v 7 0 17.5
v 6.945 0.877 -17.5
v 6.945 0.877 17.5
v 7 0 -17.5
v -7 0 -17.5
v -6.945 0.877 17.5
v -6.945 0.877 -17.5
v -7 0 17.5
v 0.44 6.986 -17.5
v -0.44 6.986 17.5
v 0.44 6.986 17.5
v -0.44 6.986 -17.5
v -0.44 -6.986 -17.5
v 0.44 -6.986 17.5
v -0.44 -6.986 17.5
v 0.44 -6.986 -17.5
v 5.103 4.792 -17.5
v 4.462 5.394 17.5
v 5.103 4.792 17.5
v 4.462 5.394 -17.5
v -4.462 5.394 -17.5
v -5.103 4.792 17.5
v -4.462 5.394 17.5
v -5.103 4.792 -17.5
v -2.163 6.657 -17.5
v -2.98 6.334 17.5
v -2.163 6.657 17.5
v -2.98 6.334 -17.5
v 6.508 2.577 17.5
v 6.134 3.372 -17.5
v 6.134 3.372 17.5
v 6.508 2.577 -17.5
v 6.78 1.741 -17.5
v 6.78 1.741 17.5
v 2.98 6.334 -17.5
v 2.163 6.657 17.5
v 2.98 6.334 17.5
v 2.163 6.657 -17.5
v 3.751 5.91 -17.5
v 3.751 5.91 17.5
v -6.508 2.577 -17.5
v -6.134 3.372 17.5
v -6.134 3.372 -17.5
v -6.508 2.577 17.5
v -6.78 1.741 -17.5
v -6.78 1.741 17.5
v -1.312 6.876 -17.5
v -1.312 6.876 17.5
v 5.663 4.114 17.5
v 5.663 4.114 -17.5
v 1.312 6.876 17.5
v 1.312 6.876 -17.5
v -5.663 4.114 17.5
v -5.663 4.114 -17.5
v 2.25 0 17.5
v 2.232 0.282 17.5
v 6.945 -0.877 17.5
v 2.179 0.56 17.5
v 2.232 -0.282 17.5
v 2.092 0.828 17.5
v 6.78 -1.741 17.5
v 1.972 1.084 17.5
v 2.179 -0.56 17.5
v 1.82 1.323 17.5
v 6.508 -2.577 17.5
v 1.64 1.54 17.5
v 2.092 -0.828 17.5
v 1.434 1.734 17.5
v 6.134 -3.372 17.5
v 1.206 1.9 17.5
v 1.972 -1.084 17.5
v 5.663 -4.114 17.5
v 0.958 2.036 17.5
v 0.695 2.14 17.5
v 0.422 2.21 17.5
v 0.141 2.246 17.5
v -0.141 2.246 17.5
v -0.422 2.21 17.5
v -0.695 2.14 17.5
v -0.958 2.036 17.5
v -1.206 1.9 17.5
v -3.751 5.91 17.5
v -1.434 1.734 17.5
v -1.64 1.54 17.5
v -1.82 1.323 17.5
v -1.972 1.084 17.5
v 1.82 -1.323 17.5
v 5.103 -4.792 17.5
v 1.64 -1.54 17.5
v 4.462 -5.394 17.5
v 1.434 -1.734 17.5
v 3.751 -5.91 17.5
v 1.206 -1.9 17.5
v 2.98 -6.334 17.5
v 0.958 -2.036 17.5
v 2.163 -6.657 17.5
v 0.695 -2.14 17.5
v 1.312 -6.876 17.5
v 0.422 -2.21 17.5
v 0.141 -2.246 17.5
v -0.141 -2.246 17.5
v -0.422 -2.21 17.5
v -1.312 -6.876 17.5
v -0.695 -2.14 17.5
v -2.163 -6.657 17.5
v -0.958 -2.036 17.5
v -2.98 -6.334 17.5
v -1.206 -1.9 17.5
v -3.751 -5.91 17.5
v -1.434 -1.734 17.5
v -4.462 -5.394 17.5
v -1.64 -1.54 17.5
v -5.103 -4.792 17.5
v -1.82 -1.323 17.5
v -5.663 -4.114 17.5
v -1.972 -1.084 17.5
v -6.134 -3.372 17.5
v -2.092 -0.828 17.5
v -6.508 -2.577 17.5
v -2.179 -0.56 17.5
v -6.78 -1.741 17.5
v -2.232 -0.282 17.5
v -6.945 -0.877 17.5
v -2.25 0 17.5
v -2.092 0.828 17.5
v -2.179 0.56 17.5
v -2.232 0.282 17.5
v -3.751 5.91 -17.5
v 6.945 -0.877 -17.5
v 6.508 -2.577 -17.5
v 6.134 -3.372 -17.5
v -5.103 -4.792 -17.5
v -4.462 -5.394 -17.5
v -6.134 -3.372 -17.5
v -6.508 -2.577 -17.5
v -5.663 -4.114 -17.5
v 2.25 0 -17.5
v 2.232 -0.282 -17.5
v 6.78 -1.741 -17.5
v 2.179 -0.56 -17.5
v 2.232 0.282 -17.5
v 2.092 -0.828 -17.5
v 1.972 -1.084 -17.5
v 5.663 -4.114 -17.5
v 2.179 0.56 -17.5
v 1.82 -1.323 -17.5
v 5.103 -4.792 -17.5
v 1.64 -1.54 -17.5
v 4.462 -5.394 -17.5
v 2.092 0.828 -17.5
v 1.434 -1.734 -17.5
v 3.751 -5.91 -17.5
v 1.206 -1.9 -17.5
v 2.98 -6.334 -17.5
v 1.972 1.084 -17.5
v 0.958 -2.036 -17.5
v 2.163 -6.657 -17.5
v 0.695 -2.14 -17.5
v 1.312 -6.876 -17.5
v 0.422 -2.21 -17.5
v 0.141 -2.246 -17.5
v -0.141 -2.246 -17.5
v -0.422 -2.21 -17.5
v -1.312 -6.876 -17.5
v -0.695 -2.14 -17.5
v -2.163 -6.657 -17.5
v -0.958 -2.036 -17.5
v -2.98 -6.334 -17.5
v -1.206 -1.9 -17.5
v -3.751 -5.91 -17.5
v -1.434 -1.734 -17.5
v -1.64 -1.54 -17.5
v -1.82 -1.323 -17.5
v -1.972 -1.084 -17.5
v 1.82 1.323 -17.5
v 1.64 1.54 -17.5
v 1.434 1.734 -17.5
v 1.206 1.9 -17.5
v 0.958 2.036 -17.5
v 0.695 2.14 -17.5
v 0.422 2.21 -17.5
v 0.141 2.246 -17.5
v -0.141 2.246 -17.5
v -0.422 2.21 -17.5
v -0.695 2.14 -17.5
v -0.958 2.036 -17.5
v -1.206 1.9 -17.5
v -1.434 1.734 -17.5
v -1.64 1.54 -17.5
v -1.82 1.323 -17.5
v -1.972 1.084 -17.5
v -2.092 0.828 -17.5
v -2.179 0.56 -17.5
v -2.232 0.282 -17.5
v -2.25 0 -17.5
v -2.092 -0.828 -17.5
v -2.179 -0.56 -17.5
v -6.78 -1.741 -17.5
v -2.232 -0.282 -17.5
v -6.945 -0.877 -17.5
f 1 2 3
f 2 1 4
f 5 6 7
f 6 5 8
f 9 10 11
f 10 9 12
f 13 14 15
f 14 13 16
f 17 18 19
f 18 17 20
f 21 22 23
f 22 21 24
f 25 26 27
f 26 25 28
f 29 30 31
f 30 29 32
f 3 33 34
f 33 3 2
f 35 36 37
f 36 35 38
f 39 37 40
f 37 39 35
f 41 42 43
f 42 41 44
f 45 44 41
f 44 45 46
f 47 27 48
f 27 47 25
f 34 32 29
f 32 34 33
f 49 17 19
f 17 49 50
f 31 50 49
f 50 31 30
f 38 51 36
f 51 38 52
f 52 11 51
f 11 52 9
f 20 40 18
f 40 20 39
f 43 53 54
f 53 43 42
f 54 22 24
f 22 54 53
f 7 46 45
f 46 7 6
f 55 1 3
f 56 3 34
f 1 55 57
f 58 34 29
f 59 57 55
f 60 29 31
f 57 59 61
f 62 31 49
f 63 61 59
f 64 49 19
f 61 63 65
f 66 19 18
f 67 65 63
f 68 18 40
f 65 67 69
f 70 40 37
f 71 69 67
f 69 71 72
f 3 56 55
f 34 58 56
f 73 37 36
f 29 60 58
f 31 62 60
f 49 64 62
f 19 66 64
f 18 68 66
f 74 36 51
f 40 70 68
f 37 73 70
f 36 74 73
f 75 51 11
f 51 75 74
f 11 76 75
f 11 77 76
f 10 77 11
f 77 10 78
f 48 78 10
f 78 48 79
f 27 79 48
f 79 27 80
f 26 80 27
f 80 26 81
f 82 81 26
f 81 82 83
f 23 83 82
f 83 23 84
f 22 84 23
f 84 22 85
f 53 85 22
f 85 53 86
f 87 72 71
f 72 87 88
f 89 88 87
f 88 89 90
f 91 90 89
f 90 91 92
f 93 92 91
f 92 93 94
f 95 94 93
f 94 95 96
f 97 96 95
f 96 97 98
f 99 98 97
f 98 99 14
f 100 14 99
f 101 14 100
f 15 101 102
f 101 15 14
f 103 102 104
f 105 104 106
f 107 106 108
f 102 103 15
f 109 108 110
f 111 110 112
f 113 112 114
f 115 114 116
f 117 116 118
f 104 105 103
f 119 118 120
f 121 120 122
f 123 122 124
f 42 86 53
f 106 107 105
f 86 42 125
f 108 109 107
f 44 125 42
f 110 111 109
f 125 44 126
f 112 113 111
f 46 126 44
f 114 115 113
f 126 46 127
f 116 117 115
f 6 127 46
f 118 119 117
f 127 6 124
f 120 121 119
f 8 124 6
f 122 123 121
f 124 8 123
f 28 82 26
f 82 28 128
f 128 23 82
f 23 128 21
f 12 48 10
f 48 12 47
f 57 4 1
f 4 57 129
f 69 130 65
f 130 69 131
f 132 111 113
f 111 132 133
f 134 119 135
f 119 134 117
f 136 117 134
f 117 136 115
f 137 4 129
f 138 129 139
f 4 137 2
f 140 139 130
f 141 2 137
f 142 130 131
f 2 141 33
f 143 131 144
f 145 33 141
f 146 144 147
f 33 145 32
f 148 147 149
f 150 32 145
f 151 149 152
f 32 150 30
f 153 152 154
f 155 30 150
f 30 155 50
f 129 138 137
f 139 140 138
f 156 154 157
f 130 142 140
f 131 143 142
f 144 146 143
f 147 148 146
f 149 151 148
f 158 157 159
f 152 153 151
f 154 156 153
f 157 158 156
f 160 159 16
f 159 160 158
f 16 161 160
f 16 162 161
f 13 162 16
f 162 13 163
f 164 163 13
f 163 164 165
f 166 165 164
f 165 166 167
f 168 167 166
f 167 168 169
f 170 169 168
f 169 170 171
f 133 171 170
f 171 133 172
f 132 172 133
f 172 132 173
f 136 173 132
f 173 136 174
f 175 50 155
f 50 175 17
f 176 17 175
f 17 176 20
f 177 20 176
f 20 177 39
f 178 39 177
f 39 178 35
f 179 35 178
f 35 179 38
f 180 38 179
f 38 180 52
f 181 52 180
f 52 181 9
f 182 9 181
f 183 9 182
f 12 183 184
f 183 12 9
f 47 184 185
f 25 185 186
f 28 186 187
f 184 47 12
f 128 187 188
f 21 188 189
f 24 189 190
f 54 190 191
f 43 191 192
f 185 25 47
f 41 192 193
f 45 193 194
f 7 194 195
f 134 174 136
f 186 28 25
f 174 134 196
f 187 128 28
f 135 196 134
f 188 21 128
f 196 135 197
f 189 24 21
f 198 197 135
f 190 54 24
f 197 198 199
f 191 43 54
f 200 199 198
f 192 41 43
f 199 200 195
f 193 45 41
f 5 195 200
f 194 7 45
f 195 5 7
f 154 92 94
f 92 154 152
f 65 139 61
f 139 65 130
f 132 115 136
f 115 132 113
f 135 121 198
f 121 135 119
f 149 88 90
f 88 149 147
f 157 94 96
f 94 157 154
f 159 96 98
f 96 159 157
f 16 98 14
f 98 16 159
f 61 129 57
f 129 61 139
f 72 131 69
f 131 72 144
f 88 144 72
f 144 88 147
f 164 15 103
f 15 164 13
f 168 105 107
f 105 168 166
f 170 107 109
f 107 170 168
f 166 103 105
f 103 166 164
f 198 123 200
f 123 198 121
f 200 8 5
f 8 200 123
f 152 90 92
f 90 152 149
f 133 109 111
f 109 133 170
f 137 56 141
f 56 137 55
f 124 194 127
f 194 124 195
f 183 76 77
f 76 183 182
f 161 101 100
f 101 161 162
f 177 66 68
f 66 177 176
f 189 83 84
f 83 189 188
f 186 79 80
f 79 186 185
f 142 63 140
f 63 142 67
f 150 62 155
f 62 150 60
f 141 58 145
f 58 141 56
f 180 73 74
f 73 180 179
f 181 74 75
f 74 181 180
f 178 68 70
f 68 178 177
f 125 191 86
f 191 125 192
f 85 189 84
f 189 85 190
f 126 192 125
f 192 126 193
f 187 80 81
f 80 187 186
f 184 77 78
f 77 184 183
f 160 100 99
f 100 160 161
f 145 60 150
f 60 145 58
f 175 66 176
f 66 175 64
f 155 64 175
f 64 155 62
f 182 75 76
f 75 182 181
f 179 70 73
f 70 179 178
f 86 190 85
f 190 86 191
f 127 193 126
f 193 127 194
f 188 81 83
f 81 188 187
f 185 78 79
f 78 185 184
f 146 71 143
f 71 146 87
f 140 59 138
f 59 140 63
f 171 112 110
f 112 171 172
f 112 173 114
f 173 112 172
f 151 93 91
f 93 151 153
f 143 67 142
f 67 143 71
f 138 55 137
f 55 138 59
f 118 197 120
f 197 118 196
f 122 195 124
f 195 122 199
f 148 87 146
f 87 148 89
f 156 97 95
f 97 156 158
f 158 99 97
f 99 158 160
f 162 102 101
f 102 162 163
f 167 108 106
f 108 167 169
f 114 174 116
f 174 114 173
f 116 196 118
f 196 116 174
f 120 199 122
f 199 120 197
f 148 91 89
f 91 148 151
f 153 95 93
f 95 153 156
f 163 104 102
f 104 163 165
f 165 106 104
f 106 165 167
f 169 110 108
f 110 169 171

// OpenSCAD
$fn = 50;


difference() {
	union() {
		translate(v = [0, 0, -17.5000000000]) {
			cylinder(h = 35, r = 7.0000000000);
		}
	}
	union() {
		translate(v = [0, 0, -100.0000000000]) {
			cylinder(h = 200, r = 2.2500000000);
		}
	}
}
